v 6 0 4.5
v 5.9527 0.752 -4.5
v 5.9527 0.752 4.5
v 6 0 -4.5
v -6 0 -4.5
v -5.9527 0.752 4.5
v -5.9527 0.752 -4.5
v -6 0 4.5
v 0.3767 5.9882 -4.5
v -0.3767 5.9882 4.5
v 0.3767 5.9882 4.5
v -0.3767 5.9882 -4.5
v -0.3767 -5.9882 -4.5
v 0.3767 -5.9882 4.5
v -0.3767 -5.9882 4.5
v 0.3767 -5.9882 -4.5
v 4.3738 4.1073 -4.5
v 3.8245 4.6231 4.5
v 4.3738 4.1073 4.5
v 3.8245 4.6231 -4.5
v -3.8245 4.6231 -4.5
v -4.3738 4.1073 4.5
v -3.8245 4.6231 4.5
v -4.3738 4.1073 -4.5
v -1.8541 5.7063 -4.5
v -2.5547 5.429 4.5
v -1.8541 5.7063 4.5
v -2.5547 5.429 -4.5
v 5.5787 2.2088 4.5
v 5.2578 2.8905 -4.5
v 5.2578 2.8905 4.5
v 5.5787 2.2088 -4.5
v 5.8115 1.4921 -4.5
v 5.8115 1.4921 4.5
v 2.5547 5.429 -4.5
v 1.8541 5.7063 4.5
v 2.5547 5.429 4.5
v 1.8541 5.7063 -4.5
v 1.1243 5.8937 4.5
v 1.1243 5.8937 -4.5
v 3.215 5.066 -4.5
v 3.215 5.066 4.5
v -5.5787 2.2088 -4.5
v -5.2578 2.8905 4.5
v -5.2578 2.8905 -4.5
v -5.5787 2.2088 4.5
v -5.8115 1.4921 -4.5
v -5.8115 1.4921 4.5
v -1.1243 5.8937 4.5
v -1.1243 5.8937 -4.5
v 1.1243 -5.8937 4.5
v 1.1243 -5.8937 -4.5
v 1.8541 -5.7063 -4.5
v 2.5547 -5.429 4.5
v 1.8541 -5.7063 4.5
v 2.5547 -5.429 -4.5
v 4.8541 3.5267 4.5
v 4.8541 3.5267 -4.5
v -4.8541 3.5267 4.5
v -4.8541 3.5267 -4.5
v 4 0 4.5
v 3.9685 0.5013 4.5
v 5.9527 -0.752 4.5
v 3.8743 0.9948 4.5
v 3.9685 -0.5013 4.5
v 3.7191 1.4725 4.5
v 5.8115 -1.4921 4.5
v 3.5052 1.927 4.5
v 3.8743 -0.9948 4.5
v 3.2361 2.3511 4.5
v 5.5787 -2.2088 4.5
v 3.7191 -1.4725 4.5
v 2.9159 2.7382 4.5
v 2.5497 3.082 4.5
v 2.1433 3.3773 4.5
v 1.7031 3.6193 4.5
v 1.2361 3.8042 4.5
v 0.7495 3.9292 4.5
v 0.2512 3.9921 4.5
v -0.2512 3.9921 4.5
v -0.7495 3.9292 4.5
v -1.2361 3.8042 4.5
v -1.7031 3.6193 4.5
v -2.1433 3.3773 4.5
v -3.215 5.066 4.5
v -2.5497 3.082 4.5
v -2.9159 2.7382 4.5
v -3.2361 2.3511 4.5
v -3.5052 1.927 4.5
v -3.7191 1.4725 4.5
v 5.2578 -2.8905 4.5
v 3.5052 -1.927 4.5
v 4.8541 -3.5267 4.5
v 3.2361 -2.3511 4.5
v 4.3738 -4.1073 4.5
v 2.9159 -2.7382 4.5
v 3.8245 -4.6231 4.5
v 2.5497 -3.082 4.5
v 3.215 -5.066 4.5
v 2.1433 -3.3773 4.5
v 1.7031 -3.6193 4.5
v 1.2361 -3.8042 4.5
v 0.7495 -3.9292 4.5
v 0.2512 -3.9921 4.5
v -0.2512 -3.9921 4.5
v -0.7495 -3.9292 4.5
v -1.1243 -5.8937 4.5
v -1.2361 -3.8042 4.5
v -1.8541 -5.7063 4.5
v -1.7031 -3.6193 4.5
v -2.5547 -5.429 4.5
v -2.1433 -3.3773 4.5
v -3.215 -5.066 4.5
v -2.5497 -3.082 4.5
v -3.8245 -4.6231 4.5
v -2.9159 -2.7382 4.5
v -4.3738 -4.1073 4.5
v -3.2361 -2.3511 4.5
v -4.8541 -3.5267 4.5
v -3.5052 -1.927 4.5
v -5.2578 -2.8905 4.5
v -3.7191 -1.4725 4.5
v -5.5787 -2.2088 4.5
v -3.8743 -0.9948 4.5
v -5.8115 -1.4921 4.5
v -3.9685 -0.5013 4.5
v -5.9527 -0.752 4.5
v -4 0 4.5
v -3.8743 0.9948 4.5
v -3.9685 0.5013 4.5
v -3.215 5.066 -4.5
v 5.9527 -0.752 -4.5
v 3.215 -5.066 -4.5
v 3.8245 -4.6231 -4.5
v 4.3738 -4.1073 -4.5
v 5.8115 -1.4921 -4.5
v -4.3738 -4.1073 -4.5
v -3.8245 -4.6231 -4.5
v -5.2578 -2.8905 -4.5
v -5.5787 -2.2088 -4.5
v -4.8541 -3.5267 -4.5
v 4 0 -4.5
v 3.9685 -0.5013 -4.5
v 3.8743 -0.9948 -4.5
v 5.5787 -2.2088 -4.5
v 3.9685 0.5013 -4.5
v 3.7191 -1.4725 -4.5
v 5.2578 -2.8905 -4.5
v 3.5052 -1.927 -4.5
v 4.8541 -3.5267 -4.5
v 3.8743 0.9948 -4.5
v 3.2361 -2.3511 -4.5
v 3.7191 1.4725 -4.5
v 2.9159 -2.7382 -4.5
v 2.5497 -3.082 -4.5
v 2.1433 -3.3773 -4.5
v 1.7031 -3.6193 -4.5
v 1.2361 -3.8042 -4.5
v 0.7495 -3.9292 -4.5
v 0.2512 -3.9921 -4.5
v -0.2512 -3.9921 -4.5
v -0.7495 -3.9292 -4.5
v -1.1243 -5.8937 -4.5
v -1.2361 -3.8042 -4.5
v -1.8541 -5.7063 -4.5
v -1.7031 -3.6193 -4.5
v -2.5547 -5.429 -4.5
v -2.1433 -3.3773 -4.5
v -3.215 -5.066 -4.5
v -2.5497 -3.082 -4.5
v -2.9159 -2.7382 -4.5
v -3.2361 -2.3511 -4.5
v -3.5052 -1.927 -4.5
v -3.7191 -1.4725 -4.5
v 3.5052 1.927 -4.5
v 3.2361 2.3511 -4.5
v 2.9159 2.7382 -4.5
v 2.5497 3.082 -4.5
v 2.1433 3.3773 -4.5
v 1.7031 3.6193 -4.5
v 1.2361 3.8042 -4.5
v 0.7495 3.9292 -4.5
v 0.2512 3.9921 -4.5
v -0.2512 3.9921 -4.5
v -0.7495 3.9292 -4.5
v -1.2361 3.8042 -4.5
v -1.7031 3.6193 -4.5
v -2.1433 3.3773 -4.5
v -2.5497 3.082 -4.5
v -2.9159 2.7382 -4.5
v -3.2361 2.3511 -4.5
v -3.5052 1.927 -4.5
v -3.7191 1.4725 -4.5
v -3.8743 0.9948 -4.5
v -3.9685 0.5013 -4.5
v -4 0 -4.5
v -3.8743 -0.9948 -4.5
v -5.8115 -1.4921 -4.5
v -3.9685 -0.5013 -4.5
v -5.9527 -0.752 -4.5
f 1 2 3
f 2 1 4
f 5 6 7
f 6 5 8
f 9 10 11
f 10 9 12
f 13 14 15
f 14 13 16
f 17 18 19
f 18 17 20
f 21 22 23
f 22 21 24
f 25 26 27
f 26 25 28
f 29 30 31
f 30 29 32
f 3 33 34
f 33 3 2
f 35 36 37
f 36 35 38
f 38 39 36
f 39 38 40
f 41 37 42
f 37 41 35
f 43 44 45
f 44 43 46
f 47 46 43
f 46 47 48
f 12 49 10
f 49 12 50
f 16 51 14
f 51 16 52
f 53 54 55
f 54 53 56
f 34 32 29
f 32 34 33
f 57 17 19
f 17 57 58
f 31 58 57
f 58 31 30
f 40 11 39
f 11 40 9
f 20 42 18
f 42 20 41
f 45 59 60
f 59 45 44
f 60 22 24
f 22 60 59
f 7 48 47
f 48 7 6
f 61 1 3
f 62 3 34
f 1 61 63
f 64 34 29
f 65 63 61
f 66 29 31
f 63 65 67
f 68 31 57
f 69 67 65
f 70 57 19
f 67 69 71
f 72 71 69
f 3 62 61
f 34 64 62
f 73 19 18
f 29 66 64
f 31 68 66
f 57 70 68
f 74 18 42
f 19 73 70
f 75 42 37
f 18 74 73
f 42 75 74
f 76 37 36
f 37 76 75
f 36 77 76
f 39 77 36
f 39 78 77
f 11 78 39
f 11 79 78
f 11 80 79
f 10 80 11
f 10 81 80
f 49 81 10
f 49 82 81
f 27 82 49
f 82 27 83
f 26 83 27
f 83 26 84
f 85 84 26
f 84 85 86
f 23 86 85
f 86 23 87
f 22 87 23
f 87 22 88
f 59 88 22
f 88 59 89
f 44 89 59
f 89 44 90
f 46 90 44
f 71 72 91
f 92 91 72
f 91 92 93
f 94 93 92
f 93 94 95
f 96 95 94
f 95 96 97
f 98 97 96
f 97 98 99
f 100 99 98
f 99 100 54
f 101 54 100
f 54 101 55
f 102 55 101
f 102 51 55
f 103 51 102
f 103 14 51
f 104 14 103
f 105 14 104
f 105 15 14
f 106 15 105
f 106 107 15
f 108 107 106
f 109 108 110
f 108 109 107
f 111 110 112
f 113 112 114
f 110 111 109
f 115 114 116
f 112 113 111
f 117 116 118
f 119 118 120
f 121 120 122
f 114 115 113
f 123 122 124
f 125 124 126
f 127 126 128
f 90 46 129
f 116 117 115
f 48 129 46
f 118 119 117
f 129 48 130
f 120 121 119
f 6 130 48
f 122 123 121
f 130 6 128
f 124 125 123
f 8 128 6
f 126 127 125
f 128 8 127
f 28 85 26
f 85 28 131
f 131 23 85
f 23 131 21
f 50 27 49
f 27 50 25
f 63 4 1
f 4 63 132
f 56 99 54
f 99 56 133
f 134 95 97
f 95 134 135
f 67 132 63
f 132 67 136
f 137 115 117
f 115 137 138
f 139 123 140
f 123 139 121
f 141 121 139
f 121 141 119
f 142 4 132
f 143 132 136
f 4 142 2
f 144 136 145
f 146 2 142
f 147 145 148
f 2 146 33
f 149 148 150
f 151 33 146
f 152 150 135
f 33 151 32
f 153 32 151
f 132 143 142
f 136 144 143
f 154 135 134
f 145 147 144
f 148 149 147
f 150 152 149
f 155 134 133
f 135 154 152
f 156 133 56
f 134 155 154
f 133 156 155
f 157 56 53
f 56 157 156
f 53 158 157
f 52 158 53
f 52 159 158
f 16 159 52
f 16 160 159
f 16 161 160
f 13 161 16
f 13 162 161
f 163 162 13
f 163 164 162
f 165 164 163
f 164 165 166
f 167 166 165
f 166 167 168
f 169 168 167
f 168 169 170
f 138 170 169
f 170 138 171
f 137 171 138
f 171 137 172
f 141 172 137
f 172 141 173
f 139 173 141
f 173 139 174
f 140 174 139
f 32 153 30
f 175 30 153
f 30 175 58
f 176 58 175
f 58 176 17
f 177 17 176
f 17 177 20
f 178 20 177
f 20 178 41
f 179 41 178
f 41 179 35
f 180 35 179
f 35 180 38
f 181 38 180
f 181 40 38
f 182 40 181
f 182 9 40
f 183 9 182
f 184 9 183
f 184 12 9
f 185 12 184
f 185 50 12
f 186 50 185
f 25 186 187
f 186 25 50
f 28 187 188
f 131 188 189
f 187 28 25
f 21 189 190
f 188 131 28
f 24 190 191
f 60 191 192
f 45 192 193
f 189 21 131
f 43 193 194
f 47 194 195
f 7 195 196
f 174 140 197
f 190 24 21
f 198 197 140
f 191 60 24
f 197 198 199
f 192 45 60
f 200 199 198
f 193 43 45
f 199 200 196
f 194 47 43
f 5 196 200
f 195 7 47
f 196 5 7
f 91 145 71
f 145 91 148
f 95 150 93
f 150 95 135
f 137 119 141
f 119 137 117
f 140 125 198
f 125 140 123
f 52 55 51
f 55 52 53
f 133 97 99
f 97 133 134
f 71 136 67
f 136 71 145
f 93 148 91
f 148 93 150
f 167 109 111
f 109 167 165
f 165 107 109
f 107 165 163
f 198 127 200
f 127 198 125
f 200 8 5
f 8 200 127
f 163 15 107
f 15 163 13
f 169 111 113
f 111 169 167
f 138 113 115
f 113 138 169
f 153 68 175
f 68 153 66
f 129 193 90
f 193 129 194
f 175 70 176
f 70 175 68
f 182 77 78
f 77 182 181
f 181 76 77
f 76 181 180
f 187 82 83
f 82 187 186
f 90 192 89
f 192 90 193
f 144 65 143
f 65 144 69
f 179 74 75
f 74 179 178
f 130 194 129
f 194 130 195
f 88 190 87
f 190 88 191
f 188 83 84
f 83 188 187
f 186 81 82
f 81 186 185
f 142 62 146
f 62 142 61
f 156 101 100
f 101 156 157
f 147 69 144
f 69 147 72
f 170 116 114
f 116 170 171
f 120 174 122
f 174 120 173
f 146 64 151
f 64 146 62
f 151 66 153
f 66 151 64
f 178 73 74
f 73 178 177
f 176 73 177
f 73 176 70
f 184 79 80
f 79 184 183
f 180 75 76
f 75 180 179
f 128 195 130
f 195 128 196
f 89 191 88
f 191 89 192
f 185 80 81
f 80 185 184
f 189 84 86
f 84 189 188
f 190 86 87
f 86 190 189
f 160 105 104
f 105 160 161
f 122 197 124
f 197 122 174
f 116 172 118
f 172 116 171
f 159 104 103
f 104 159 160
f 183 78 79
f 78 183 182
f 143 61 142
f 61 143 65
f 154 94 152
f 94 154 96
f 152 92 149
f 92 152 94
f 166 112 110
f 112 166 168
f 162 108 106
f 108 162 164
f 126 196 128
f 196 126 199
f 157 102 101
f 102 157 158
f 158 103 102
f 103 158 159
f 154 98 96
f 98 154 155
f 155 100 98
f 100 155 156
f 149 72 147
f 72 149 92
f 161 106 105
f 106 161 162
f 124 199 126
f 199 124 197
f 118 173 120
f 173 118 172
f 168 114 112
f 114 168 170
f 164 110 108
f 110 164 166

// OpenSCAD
$fn = 50;


difference() {
	union() {
		translate(v = [0, 0, -4.5000000000]) {
			cylinder(h = 9, r = 6.0000000000);
		}
	}
	union() {
		translate(v = [0, 0, -100.0000000000]) {
			cylinder(h = 200, r = 4);
		}
	}
}
